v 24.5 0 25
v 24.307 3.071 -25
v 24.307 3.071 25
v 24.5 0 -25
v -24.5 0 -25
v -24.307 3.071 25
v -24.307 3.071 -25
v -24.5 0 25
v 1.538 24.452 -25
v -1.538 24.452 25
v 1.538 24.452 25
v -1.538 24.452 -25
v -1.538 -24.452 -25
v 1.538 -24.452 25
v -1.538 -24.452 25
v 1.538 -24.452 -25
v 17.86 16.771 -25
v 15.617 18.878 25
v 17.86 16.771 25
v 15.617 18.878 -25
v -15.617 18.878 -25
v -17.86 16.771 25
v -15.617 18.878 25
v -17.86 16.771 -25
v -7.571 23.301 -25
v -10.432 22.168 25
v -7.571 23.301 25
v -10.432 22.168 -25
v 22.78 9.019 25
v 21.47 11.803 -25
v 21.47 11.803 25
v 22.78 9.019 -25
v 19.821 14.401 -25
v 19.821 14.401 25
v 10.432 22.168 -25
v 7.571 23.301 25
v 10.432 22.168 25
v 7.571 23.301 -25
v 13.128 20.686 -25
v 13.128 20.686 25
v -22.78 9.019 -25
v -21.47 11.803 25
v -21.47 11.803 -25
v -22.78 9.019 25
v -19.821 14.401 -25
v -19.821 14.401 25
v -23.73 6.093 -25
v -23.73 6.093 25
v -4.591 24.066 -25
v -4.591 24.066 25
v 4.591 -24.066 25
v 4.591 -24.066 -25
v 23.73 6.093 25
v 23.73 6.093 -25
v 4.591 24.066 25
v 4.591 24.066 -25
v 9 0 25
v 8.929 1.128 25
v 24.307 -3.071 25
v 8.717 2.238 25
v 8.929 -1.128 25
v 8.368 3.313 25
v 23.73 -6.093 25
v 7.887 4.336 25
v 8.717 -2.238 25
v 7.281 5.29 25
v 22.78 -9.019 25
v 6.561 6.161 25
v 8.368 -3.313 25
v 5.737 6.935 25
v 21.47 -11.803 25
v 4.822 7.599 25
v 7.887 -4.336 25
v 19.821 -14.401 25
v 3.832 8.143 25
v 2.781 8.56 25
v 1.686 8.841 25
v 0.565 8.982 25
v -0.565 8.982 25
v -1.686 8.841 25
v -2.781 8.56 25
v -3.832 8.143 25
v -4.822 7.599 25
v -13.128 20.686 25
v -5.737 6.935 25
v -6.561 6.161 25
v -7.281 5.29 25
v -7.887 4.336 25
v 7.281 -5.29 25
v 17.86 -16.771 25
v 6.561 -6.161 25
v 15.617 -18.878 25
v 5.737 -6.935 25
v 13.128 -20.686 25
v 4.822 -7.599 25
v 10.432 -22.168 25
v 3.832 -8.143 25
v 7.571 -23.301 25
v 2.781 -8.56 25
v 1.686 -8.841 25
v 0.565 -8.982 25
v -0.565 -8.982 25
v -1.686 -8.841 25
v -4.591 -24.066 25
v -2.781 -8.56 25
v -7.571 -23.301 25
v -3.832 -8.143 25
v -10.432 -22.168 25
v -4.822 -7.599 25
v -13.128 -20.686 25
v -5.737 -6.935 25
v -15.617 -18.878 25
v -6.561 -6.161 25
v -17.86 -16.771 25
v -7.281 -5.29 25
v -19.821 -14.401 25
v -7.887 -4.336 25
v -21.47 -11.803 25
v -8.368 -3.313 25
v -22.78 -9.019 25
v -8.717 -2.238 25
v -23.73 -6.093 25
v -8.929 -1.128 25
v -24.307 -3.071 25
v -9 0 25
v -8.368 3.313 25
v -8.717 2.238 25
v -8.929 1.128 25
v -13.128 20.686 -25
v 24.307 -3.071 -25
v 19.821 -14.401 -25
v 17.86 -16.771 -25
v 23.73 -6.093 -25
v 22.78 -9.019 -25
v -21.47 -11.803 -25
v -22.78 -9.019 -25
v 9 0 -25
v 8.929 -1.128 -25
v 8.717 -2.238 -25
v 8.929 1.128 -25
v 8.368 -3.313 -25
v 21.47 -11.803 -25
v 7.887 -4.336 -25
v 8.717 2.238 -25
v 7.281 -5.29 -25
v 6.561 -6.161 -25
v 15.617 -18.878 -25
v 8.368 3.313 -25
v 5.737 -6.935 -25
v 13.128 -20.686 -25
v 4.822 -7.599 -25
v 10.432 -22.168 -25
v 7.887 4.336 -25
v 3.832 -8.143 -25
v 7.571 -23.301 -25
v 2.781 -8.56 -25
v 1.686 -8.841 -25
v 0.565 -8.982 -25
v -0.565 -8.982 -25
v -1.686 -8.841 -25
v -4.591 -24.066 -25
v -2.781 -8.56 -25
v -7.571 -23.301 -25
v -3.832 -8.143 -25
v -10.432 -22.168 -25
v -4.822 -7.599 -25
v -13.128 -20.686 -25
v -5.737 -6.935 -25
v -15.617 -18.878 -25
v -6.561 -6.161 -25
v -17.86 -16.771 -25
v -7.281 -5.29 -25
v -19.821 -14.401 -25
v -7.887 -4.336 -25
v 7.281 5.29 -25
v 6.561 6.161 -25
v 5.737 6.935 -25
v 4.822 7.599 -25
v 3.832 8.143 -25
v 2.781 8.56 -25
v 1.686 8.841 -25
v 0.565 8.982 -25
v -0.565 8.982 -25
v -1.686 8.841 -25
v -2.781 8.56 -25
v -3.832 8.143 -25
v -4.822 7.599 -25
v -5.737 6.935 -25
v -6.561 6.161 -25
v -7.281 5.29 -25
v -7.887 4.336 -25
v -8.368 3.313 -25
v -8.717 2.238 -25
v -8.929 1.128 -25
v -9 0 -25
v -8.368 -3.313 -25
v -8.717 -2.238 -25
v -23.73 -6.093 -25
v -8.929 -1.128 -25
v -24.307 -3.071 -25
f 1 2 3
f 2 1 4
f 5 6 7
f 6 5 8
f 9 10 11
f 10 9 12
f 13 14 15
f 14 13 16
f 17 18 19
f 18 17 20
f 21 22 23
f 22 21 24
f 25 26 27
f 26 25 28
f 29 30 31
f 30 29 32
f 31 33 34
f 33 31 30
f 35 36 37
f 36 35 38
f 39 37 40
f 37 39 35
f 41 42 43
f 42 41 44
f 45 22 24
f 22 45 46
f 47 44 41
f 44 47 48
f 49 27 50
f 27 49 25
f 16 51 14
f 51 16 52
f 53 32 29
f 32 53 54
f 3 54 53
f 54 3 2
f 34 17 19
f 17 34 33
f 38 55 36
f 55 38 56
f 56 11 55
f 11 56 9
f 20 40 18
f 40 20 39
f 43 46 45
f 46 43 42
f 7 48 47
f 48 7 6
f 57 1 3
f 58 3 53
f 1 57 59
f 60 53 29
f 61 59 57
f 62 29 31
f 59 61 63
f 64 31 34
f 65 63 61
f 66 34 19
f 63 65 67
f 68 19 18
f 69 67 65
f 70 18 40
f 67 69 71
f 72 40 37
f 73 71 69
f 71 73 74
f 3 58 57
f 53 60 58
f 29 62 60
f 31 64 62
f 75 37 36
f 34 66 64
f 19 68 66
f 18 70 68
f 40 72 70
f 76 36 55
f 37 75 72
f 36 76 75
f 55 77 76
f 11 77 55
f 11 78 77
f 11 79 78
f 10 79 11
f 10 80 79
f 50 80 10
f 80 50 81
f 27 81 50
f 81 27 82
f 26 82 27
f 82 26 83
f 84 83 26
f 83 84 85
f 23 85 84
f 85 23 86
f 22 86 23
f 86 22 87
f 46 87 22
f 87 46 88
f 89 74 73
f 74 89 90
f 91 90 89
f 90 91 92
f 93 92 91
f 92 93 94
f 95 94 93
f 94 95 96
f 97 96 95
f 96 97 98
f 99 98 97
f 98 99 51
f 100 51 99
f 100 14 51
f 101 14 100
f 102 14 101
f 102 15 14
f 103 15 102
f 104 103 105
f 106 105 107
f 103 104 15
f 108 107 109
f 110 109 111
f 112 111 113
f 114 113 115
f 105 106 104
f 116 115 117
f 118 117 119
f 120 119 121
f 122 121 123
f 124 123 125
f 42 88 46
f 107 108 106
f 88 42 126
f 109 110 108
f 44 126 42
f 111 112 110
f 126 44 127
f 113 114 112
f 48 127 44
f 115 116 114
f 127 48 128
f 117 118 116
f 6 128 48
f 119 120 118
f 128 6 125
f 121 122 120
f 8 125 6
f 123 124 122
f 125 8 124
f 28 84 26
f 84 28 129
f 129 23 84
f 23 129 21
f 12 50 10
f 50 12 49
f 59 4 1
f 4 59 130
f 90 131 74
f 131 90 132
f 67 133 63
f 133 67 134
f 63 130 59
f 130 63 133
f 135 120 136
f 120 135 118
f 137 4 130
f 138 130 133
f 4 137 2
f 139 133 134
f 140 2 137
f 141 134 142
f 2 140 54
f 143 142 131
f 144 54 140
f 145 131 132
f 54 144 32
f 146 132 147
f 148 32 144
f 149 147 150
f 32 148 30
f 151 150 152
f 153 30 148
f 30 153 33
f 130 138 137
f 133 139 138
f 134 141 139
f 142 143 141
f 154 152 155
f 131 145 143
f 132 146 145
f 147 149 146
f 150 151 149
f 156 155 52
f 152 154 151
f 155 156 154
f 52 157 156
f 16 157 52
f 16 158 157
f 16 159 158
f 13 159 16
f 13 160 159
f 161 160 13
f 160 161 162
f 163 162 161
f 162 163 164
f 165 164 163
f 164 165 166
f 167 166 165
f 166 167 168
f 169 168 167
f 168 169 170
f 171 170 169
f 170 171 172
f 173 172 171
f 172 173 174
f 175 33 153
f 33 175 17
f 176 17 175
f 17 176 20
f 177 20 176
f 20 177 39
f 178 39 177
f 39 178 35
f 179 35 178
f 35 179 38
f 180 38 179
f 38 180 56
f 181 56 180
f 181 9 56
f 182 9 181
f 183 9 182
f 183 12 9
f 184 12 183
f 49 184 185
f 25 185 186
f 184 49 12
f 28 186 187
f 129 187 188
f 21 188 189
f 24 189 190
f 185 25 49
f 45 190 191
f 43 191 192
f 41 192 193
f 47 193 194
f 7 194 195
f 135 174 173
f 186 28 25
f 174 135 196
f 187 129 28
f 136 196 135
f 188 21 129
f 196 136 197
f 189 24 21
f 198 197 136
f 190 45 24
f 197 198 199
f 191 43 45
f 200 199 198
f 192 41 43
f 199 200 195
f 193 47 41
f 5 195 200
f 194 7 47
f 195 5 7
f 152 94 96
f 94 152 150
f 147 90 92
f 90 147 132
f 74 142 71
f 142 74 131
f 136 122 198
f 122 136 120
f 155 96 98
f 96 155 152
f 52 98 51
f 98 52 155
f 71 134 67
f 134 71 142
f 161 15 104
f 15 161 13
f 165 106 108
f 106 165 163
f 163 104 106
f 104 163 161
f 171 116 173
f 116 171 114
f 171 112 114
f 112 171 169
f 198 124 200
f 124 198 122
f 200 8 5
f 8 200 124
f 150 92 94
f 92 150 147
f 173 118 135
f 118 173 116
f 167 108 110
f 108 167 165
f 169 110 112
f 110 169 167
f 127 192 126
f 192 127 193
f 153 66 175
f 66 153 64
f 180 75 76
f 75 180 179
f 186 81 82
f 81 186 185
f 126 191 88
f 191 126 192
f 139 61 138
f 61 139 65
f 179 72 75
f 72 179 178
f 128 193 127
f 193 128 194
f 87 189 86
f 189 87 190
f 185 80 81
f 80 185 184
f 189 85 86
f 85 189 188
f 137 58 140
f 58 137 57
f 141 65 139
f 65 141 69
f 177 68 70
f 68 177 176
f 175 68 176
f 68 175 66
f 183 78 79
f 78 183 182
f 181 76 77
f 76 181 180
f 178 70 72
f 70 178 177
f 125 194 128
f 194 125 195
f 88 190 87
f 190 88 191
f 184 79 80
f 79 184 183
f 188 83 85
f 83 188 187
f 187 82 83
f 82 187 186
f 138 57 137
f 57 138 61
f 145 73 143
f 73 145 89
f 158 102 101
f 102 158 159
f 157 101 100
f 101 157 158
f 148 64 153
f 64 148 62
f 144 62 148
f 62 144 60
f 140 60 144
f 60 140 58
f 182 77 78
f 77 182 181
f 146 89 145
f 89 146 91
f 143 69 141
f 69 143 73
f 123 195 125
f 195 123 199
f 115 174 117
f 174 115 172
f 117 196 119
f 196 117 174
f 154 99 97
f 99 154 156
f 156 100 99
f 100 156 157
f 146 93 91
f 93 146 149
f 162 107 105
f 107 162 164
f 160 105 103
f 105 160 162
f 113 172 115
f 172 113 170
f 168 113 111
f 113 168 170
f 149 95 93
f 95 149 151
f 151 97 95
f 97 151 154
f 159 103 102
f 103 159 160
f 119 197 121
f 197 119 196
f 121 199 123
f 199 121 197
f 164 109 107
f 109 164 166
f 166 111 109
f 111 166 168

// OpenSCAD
$fn = 50;


difference() {
	union() {
		translate(v = [0, 0, -25.0000000000]) {
			cylinder(h = 50, r = 24.5000000000);
		}
	}
	union() {
		translate(v = [0, 0, -100.0000000000]) {
			cylinder(h = 200, r = 9);
		}
	}
}
